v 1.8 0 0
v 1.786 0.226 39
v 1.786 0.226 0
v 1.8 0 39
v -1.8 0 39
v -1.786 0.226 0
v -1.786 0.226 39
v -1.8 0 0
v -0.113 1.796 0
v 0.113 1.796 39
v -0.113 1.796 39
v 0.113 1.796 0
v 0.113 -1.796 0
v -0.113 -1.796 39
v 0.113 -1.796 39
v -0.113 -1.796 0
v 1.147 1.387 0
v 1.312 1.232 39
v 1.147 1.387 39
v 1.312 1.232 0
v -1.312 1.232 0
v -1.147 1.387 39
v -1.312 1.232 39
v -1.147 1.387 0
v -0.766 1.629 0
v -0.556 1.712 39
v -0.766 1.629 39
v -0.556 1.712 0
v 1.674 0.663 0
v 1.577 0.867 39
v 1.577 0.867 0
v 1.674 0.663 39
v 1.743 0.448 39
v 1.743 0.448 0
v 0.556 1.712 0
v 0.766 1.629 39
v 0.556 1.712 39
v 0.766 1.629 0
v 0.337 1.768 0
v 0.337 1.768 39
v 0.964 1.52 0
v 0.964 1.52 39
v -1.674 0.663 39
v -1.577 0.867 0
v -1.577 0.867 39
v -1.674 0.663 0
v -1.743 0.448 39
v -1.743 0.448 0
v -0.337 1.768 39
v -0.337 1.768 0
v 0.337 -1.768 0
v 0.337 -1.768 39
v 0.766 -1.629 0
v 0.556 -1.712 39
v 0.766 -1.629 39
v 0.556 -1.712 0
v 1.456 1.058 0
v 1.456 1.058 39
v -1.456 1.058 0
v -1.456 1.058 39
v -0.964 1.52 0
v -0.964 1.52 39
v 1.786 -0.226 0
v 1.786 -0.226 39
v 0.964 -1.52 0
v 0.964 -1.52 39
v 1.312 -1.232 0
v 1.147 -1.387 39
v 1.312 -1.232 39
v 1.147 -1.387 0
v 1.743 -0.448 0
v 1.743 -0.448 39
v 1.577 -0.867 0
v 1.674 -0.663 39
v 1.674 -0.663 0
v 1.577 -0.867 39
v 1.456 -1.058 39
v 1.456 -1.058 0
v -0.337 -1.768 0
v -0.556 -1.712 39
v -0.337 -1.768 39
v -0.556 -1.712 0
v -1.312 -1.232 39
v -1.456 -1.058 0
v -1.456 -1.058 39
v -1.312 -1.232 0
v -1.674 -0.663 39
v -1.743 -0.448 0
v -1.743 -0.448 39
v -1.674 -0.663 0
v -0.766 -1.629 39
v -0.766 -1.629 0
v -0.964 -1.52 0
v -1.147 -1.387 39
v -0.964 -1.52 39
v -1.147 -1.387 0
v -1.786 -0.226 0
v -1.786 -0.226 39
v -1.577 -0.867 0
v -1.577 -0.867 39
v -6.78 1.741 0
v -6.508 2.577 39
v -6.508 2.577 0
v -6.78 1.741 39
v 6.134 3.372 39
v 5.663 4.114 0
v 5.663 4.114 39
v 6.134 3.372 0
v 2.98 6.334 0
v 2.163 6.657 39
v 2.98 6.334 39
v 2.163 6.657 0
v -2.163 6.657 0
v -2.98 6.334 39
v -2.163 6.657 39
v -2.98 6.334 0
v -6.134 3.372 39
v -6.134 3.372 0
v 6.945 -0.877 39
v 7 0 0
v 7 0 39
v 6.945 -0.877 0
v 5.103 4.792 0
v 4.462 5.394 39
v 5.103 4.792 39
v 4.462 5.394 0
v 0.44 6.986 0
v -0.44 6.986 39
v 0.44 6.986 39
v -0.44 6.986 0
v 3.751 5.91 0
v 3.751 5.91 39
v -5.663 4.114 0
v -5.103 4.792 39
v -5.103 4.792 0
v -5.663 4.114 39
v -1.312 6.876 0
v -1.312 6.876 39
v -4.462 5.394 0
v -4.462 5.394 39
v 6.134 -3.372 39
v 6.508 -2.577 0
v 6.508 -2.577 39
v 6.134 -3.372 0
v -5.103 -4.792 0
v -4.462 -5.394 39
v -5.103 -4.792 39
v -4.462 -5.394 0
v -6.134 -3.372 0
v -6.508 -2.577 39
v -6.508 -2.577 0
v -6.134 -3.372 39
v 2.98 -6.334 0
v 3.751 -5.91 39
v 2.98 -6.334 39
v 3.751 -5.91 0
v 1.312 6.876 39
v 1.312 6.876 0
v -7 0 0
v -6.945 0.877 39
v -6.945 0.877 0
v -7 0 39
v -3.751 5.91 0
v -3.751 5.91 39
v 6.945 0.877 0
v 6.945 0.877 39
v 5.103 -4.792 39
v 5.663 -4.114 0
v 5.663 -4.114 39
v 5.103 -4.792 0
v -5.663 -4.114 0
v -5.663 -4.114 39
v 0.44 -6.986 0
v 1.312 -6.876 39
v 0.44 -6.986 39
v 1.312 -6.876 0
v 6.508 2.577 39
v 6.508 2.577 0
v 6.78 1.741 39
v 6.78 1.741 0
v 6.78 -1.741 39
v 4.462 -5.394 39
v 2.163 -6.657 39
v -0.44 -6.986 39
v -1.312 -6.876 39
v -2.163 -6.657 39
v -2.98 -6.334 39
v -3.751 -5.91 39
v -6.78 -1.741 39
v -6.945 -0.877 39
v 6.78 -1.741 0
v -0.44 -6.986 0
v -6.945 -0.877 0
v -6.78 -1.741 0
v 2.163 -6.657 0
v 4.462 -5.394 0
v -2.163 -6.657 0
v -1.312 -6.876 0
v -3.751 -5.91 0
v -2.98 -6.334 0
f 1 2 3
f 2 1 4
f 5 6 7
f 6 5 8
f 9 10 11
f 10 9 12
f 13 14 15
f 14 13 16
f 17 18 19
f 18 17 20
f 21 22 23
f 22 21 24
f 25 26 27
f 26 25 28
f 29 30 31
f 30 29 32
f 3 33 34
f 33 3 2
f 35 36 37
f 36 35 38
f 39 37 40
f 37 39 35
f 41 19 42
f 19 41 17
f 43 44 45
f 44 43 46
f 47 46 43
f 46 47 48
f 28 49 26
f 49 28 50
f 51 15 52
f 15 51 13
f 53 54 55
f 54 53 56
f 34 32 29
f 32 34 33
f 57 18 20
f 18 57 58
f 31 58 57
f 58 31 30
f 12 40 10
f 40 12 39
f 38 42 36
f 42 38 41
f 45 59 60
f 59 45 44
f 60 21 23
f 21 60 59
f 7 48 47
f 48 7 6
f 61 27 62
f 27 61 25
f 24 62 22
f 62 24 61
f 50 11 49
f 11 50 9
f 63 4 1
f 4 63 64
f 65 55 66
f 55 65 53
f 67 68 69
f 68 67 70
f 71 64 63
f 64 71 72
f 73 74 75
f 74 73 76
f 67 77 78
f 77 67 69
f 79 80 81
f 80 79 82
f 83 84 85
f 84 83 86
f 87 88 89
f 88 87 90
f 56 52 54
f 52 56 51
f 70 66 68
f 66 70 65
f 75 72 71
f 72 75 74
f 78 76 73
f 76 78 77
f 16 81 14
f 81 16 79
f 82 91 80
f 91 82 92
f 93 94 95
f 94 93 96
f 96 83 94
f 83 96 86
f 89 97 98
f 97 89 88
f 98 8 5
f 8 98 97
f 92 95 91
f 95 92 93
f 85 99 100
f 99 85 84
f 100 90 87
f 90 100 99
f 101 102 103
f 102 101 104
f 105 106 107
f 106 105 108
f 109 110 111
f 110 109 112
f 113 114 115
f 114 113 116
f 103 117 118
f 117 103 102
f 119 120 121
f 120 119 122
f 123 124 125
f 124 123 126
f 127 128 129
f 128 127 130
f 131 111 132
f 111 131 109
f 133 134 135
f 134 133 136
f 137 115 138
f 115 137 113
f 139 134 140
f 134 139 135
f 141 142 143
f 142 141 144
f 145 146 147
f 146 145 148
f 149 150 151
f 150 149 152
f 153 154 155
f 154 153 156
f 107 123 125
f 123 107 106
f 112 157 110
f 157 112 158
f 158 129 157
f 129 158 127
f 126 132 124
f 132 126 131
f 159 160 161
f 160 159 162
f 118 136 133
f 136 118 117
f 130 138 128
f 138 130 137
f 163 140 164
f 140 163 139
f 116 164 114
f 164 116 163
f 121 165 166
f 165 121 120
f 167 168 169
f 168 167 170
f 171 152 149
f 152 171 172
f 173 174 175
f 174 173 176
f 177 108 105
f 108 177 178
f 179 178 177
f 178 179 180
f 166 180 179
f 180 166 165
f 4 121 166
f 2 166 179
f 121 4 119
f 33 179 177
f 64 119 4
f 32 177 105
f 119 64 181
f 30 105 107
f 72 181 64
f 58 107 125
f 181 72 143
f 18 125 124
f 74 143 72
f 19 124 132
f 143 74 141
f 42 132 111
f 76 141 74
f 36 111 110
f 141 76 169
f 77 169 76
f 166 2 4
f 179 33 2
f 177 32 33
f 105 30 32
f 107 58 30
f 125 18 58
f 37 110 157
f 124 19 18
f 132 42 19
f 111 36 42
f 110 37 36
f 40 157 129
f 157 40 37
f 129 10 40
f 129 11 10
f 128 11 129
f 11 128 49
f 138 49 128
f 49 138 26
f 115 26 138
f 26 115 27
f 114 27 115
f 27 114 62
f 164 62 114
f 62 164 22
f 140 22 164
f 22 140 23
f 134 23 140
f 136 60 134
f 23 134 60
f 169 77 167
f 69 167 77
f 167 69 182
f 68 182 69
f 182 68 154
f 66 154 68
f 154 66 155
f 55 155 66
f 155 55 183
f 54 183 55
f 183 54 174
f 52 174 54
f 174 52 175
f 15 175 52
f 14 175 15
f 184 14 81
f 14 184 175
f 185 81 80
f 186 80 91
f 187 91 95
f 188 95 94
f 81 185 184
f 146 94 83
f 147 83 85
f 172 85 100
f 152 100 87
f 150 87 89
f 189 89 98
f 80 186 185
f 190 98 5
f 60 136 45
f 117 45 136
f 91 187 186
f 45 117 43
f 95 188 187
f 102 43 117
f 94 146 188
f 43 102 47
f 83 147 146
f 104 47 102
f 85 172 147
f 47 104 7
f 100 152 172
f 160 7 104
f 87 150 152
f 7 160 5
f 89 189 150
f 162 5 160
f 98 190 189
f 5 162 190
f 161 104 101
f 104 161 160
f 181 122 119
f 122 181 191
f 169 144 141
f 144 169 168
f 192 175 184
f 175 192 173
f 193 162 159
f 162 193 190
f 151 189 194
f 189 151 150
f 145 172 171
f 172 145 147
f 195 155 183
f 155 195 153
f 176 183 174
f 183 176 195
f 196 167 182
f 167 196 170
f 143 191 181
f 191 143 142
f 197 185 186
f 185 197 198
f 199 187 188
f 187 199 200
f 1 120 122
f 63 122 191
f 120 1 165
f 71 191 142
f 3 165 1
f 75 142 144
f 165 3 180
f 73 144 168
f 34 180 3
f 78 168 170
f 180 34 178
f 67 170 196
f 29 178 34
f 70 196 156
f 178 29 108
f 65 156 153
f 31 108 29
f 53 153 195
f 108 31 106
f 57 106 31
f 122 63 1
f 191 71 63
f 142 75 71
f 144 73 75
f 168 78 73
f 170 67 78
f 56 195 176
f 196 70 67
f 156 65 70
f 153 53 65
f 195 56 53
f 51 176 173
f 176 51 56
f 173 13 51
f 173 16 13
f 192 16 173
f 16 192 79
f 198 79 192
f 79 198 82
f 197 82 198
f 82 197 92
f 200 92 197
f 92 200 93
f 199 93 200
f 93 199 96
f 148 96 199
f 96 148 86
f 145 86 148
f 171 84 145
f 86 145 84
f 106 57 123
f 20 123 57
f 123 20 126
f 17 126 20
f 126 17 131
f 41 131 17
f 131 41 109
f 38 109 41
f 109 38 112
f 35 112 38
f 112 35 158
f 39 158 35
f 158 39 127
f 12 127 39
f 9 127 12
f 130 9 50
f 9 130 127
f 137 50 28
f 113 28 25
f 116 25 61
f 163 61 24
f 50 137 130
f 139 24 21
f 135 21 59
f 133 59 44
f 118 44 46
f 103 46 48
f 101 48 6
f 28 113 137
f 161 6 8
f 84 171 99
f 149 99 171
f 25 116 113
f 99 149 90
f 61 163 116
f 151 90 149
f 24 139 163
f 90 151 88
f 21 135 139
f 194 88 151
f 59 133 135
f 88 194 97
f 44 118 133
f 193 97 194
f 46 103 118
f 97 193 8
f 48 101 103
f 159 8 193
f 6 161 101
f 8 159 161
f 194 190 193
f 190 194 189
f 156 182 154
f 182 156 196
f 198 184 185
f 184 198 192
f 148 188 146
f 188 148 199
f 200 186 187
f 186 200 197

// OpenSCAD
$fn = 50;


difference() {
	union() {
		cylinder(h = 39, r = 7.0000000000);
	}
	union() {
		translate(v = [0, 0, -100]) {
			cylinder(h = 200, r = 1.8000000000);
		}
		translate(v = [0, 0, -100]) {
			cylinder(h = 200, r = 1.8000000000);
		}
	}
}
